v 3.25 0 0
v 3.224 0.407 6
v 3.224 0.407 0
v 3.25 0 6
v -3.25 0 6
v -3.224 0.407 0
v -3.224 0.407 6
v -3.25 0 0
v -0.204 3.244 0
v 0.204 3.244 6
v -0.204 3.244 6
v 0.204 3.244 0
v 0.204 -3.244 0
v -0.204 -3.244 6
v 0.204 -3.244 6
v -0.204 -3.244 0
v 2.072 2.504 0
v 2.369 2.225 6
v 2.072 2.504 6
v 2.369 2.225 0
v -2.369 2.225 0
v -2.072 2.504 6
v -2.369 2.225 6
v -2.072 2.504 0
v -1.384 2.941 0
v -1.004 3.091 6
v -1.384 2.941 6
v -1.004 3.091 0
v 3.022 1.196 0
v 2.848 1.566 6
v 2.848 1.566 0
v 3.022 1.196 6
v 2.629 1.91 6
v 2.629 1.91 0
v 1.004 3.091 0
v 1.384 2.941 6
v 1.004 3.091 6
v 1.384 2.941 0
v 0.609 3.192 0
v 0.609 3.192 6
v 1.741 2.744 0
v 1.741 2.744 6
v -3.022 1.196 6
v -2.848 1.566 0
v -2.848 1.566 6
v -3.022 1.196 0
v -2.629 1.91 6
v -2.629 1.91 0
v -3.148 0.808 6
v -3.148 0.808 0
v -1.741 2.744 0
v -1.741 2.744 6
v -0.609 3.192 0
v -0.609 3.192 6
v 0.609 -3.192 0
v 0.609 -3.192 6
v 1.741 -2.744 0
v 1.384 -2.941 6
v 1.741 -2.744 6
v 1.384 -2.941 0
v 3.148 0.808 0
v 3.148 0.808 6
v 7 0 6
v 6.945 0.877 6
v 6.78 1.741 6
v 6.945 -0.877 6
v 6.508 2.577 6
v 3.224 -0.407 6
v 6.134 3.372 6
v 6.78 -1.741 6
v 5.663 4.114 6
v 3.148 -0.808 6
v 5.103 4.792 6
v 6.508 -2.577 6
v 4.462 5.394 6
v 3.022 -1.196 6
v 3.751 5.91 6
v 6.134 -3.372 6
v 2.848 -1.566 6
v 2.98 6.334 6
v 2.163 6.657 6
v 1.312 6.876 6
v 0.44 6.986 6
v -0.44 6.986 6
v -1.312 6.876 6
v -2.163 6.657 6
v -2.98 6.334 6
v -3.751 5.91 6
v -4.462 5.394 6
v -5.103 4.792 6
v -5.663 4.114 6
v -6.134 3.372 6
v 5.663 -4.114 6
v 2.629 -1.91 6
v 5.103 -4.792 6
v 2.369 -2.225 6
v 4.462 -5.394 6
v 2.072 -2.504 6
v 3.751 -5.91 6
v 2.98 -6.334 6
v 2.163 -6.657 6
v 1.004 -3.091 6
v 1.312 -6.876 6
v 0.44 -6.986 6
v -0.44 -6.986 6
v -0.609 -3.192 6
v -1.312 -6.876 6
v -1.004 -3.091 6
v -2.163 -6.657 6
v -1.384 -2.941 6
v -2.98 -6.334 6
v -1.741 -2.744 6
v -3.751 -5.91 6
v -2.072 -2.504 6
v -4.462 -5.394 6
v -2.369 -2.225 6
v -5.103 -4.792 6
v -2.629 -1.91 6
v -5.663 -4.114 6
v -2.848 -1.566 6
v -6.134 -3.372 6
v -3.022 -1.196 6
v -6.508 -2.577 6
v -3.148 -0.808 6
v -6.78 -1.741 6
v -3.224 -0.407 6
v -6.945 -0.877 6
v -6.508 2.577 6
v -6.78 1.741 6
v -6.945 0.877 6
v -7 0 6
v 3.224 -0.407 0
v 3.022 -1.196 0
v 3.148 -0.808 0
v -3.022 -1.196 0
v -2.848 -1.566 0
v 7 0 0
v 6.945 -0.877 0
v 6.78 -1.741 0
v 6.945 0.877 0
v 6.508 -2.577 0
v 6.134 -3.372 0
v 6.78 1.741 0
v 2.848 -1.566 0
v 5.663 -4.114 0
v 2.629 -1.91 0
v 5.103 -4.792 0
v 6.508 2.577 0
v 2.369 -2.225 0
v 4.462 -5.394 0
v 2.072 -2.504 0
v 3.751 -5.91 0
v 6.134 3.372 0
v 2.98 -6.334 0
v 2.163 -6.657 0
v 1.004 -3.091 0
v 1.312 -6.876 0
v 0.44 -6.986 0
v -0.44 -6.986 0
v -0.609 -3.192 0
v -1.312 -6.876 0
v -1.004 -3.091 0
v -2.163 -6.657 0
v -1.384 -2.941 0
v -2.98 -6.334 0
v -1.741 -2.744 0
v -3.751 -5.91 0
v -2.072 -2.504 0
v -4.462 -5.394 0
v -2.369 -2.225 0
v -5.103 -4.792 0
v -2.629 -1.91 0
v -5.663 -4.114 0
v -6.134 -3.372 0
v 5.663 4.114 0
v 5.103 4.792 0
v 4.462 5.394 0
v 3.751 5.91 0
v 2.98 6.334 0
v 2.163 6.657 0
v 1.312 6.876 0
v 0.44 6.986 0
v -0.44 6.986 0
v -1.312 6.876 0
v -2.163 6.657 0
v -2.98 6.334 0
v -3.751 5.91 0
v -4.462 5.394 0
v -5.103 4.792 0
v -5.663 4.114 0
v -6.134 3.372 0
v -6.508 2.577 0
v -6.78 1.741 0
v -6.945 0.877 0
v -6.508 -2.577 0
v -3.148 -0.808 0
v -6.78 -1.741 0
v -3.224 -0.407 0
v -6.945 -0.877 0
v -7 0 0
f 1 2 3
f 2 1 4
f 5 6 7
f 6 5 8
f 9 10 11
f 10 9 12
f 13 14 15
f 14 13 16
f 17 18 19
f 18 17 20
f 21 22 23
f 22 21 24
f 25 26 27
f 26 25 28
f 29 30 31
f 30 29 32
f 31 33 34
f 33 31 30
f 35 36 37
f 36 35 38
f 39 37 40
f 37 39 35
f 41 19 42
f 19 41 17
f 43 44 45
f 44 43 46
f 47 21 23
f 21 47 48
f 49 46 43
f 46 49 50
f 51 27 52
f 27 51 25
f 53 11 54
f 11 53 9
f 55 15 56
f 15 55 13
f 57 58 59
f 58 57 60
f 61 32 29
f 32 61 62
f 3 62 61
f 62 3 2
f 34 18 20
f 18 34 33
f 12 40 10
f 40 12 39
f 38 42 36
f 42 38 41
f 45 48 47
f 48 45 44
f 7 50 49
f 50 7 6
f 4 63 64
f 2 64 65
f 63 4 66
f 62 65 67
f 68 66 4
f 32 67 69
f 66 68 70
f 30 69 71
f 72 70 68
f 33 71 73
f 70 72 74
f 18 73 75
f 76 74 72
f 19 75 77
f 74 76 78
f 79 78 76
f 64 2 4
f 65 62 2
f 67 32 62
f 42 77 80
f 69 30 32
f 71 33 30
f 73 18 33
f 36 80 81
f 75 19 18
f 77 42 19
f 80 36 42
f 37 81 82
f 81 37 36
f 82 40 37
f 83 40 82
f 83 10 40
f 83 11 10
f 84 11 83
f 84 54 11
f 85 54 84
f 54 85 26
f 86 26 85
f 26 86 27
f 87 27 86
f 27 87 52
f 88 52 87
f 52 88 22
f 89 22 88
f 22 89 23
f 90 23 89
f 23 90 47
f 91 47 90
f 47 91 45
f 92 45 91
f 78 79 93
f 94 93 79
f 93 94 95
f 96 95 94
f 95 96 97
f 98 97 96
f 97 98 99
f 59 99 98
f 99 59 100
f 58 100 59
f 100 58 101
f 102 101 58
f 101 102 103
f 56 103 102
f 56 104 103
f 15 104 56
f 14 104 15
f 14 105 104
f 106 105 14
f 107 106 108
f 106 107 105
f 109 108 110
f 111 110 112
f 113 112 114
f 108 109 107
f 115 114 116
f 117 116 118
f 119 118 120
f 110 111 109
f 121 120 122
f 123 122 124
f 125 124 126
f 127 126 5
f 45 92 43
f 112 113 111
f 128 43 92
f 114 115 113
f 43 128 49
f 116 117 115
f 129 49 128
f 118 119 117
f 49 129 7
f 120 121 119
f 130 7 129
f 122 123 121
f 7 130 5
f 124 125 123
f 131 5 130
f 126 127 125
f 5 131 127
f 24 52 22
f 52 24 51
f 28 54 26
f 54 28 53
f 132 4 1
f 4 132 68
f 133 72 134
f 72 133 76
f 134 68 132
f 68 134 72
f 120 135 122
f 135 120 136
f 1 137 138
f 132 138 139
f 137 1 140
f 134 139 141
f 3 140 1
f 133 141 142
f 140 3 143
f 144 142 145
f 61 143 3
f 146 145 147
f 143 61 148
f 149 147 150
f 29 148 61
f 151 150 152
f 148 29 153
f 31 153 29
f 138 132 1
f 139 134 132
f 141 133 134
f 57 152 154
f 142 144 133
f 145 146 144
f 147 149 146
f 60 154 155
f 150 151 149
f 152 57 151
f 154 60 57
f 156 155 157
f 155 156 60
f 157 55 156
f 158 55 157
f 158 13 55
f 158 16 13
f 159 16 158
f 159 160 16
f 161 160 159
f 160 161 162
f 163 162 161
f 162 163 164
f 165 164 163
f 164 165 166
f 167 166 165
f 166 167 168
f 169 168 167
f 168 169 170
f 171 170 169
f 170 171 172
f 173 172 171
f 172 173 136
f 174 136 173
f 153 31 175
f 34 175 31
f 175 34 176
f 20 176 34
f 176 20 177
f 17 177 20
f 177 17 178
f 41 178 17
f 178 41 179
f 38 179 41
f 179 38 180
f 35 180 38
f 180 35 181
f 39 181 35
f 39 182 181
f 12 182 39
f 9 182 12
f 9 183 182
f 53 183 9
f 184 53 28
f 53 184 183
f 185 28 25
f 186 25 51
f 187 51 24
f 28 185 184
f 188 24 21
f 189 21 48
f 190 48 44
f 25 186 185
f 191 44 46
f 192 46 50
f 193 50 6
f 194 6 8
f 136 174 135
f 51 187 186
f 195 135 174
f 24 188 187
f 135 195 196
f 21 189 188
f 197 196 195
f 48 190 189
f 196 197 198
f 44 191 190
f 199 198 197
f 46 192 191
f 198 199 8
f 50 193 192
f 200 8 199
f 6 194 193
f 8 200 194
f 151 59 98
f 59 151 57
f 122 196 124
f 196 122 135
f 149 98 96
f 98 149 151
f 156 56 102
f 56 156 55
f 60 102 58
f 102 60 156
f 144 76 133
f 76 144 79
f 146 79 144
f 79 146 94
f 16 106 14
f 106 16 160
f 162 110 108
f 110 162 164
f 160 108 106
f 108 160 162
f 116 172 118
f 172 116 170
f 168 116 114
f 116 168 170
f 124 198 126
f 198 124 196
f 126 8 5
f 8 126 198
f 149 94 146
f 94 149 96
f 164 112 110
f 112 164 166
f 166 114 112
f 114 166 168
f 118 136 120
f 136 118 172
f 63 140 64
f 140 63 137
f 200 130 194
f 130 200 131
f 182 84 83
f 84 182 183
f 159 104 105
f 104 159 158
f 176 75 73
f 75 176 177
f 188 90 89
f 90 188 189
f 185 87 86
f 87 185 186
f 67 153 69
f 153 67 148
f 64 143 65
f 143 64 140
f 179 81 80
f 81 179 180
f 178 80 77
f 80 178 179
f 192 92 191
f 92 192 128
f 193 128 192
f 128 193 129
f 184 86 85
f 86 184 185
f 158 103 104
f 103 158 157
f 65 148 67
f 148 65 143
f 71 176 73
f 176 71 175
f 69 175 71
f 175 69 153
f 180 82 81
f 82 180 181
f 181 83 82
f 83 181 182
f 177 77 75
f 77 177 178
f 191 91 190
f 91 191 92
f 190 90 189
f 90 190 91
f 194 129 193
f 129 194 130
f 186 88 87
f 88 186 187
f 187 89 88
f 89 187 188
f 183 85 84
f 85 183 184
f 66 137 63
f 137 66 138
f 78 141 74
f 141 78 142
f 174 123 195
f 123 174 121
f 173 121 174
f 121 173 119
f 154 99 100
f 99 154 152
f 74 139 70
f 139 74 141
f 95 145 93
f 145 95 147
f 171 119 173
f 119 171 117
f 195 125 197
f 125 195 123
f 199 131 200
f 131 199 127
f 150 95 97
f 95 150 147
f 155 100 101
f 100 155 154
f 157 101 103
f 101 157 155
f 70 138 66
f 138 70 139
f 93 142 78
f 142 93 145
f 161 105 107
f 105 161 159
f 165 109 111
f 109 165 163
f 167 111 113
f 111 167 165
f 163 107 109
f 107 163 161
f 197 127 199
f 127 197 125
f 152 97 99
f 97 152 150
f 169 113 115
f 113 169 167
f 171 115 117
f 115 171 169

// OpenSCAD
$fn = 50;


difference() {
	union() {
		cylinder(h = 6, r = 7.0000000000);
	}
	union() {
		cylinder(h = 6, r = 3.2500000000);
		cylinder(h = 6, r = 3.2500000000);
		cylinder(h = 6, r = 1.8000000000);
		cylinder(h = 6, r = 1.8000000000);
		cylinder(h = 6, r = 1.8000000000);
		cylinder(h = 6, r = 1.8000000000);
		cylinder(h = 6, r = 1.8000000000);
		cylinder(h = 6, r = 1.8000000000);
	}
}
